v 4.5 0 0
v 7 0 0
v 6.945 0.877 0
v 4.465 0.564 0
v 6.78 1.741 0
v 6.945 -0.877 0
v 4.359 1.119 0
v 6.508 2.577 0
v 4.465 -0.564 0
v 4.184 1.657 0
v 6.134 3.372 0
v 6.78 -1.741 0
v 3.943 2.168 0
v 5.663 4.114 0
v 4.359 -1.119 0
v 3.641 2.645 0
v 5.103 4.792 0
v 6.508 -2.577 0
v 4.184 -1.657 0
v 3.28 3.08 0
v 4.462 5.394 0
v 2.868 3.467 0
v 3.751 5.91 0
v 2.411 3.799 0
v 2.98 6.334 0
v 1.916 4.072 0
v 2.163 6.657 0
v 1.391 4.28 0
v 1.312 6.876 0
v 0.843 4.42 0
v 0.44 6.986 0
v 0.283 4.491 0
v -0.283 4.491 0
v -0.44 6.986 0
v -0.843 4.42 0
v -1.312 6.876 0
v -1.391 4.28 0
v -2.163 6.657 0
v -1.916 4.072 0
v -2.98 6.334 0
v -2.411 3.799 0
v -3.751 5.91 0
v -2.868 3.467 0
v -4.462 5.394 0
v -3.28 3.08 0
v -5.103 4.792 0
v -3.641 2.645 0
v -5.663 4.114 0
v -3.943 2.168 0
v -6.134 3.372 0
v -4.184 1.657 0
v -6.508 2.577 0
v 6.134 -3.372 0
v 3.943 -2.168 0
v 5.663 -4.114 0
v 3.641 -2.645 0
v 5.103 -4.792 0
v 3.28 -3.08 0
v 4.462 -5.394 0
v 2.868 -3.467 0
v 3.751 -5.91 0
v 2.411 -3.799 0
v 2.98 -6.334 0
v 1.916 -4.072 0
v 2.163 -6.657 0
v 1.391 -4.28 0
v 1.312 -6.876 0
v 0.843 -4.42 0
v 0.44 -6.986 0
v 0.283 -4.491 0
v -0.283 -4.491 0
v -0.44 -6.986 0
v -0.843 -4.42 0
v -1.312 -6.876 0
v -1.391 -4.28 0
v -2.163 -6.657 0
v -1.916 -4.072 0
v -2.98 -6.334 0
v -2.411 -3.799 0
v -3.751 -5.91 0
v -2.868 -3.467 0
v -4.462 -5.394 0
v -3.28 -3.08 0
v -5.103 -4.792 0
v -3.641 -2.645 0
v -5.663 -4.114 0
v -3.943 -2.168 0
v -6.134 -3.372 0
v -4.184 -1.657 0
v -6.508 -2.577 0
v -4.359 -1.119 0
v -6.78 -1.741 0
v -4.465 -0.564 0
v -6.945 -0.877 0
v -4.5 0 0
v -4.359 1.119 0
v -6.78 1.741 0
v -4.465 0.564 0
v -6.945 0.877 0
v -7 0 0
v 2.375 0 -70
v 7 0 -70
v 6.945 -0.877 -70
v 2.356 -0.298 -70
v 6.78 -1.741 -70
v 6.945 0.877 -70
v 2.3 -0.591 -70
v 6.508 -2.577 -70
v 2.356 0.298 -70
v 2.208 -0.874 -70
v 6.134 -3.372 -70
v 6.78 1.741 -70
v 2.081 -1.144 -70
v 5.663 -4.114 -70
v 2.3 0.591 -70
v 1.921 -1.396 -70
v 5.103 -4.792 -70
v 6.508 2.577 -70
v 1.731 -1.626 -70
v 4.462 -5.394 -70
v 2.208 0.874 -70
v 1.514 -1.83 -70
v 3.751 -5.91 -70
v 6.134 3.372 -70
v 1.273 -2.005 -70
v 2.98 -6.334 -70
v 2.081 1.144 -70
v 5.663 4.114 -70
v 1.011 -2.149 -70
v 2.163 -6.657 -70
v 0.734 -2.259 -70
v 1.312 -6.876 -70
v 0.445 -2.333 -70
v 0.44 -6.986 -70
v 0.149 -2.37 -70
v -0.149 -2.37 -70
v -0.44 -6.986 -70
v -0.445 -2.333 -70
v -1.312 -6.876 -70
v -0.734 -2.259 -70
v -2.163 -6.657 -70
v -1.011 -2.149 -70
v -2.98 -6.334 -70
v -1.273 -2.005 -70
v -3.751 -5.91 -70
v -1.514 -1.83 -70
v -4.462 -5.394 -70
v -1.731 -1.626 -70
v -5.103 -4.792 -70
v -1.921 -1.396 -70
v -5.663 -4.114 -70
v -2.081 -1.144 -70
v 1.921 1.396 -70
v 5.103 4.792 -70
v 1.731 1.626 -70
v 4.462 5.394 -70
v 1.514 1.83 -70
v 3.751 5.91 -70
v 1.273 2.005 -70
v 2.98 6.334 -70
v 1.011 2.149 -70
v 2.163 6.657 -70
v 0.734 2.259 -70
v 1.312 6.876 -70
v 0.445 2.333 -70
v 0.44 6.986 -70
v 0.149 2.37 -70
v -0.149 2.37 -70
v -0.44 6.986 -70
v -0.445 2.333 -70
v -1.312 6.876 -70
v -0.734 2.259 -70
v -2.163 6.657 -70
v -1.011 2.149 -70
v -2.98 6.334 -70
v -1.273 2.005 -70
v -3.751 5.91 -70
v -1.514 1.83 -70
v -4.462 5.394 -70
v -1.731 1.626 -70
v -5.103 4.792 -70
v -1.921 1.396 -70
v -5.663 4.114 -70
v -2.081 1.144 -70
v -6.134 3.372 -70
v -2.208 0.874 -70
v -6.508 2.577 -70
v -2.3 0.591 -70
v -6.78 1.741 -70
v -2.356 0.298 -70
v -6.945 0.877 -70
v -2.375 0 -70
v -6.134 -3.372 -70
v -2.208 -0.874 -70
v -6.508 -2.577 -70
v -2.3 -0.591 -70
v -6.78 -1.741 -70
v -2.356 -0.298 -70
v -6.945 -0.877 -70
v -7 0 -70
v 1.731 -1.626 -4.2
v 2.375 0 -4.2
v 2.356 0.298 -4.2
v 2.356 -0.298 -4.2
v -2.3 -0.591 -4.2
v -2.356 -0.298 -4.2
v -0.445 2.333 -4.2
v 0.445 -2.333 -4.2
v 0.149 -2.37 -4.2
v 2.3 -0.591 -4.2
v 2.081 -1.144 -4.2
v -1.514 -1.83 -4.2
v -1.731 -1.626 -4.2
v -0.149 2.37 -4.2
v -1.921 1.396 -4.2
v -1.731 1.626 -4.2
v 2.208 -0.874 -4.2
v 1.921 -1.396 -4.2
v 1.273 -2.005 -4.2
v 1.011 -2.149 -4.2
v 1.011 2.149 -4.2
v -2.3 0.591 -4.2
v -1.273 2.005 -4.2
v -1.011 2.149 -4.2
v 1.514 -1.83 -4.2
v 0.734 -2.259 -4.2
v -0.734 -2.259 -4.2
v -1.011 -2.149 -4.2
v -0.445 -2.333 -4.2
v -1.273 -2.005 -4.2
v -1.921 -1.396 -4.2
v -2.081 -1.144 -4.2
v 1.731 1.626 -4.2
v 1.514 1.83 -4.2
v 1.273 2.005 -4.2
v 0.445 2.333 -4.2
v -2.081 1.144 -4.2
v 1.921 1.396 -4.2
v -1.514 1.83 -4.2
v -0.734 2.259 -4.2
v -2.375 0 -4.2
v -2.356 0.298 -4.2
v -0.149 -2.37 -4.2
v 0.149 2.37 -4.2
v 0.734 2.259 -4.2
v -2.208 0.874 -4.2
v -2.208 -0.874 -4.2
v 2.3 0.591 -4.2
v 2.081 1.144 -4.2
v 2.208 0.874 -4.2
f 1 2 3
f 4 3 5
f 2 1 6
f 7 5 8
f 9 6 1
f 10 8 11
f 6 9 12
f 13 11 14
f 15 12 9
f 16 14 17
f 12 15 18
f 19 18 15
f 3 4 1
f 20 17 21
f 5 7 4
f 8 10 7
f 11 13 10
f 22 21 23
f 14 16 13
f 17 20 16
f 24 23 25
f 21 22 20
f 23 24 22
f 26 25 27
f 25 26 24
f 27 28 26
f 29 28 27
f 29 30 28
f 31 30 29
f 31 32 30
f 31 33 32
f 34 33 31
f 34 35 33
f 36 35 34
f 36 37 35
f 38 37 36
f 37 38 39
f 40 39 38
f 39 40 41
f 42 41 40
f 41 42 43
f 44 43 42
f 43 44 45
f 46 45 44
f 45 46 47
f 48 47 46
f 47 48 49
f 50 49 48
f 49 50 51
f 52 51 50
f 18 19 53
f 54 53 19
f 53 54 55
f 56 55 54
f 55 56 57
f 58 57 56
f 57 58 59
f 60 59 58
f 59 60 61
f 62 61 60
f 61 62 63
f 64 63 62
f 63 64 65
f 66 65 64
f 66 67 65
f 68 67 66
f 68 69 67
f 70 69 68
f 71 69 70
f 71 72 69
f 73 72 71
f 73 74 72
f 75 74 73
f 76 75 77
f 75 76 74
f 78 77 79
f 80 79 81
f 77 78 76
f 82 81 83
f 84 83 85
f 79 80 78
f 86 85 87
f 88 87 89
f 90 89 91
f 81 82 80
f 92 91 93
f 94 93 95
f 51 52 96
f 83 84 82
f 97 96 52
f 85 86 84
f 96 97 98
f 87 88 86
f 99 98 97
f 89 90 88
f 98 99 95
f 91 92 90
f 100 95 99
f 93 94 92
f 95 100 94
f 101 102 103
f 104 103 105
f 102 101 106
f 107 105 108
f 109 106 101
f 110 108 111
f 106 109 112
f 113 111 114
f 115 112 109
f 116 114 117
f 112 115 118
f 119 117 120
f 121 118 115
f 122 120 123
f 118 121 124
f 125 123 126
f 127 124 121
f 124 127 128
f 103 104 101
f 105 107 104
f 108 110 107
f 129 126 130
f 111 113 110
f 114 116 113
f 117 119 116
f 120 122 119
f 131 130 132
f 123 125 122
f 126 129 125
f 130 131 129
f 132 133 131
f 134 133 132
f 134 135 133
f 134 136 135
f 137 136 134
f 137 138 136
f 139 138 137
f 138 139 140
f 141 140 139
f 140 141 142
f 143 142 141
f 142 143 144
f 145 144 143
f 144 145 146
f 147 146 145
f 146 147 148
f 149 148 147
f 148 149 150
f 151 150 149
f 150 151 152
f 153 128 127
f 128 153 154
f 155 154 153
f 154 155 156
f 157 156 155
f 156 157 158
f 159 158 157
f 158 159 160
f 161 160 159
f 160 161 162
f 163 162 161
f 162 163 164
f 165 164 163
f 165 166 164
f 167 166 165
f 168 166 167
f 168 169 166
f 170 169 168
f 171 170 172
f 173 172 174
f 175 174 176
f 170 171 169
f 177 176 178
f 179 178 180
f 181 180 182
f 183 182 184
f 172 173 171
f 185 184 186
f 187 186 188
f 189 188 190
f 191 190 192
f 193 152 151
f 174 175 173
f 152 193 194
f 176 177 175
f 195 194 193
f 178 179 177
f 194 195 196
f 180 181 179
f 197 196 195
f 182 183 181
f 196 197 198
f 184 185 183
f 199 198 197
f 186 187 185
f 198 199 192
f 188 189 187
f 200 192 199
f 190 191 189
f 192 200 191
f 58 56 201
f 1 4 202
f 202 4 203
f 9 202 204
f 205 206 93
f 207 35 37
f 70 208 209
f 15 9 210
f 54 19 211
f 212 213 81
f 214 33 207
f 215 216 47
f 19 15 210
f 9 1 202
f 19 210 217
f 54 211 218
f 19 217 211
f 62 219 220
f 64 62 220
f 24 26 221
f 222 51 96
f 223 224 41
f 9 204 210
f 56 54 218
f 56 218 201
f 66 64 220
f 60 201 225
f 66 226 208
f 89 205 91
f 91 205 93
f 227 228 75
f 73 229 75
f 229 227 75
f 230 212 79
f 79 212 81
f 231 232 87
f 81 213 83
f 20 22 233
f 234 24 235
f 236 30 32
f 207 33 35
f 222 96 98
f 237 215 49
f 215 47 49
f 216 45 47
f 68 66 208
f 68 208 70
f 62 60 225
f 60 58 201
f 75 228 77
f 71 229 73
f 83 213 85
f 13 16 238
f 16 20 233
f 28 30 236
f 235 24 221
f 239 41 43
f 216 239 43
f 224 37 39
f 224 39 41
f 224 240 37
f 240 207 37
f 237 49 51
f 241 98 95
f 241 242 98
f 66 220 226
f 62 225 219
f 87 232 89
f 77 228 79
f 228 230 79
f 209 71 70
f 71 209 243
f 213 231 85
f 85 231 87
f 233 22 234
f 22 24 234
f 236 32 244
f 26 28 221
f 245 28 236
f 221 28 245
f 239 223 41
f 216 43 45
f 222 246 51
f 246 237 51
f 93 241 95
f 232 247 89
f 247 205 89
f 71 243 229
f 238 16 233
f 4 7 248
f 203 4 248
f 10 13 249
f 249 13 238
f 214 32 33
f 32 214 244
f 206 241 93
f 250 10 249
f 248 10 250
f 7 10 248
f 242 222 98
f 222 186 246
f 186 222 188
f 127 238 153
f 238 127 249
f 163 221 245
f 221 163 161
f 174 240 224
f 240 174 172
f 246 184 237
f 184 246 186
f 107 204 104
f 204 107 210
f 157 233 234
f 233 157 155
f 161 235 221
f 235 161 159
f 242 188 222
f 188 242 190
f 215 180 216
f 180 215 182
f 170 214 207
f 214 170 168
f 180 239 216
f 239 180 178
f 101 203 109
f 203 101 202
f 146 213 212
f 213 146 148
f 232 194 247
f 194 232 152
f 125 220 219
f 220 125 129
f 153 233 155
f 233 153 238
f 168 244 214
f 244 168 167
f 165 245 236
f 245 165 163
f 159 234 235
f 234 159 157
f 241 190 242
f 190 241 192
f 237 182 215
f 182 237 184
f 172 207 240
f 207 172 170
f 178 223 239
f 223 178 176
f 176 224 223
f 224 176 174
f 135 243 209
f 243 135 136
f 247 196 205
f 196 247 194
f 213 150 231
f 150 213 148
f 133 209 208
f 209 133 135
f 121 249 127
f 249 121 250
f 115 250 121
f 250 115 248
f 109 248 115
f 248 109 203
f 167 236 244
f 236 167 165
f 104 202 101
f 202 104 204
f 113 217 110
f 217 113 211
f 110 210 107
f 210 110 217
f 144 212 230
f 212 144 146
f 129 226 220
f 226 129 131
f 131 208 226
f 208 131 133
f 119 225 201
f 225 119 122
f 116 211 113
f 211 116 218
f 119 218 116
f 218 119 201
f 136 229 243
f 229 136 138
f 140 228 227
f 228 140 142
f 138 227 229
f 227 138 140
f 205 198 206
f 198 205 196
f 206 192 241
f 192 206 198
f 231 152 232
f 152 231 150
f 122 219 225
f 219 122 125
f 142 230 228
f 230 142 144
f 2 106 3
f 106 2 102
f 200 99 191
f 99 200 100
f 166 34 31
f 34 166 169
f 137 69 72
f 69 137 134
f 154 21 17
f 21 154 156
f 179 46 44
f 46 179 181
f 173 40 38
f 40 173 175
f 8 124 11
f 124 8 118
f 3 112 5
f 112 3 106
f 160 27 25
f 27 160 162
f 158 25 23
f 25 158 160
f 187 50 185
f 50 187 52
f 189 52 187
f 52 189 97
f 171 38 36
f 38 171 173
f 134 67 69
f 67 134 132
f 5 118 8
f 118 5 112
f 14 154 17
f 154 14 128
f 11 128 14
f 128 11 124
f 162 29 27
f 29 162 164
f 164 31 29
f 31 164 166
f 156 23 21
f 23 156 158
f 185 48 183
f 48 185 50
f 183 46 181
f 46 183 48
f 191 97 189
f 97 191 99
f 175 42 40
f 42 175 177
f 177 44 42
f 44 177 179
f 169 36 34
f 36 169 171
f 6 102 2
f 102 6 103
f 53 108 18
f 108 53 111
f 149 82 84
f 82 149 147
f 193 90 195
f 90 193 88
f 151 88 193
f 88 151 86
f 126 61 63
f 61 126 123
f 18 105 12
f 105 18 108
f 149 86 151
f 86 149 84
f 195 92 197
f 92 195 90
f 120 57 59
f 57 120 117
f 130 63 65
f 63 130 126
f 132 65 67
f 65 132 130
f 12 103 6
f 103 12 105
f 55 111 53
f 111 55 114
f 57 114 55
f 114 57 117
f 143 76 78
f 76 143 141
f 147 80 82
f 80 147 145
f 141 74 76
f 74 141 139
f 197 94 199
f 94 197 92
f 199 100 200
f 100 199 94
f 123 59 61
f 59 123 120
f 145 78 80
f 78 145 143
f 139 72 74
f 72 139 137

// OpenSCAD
$fn = 50;


difference() {
	union() {
		translate(v = [0, 0, -70.0000000000]) {
			cylinder(h = 70, r = 7.0000000000);
		}
		cylinder(h = 0, r = 16.0000000000);
	}
	union() {
		translate(v = [0, 0, 0]) {
			rotate(a = [0, 0, 0]) {
				difference() {
					union() {
						#translate(v = [0, 0, -70.0000000000]) {
							cylinder(h = 70, r = 2.2500000000);
						}
						#translate(v = [0, 0, -4.2000000000]) {
							cylinder(h = 4.2000000000, r1 = 2.3750000000, r2 = 4.5000000000);
						}
						#translate(v = [0, 0, -70.0000000000]) {
							cylinder(h = 70, r = 2.3750000000);
						}
						#translate(v = [0, 0, -70.0000000000]) {
							cylinder(h = 70, r = 2.2500000000);
						}
					}
					union();
				}
			}
		}
	}
}
